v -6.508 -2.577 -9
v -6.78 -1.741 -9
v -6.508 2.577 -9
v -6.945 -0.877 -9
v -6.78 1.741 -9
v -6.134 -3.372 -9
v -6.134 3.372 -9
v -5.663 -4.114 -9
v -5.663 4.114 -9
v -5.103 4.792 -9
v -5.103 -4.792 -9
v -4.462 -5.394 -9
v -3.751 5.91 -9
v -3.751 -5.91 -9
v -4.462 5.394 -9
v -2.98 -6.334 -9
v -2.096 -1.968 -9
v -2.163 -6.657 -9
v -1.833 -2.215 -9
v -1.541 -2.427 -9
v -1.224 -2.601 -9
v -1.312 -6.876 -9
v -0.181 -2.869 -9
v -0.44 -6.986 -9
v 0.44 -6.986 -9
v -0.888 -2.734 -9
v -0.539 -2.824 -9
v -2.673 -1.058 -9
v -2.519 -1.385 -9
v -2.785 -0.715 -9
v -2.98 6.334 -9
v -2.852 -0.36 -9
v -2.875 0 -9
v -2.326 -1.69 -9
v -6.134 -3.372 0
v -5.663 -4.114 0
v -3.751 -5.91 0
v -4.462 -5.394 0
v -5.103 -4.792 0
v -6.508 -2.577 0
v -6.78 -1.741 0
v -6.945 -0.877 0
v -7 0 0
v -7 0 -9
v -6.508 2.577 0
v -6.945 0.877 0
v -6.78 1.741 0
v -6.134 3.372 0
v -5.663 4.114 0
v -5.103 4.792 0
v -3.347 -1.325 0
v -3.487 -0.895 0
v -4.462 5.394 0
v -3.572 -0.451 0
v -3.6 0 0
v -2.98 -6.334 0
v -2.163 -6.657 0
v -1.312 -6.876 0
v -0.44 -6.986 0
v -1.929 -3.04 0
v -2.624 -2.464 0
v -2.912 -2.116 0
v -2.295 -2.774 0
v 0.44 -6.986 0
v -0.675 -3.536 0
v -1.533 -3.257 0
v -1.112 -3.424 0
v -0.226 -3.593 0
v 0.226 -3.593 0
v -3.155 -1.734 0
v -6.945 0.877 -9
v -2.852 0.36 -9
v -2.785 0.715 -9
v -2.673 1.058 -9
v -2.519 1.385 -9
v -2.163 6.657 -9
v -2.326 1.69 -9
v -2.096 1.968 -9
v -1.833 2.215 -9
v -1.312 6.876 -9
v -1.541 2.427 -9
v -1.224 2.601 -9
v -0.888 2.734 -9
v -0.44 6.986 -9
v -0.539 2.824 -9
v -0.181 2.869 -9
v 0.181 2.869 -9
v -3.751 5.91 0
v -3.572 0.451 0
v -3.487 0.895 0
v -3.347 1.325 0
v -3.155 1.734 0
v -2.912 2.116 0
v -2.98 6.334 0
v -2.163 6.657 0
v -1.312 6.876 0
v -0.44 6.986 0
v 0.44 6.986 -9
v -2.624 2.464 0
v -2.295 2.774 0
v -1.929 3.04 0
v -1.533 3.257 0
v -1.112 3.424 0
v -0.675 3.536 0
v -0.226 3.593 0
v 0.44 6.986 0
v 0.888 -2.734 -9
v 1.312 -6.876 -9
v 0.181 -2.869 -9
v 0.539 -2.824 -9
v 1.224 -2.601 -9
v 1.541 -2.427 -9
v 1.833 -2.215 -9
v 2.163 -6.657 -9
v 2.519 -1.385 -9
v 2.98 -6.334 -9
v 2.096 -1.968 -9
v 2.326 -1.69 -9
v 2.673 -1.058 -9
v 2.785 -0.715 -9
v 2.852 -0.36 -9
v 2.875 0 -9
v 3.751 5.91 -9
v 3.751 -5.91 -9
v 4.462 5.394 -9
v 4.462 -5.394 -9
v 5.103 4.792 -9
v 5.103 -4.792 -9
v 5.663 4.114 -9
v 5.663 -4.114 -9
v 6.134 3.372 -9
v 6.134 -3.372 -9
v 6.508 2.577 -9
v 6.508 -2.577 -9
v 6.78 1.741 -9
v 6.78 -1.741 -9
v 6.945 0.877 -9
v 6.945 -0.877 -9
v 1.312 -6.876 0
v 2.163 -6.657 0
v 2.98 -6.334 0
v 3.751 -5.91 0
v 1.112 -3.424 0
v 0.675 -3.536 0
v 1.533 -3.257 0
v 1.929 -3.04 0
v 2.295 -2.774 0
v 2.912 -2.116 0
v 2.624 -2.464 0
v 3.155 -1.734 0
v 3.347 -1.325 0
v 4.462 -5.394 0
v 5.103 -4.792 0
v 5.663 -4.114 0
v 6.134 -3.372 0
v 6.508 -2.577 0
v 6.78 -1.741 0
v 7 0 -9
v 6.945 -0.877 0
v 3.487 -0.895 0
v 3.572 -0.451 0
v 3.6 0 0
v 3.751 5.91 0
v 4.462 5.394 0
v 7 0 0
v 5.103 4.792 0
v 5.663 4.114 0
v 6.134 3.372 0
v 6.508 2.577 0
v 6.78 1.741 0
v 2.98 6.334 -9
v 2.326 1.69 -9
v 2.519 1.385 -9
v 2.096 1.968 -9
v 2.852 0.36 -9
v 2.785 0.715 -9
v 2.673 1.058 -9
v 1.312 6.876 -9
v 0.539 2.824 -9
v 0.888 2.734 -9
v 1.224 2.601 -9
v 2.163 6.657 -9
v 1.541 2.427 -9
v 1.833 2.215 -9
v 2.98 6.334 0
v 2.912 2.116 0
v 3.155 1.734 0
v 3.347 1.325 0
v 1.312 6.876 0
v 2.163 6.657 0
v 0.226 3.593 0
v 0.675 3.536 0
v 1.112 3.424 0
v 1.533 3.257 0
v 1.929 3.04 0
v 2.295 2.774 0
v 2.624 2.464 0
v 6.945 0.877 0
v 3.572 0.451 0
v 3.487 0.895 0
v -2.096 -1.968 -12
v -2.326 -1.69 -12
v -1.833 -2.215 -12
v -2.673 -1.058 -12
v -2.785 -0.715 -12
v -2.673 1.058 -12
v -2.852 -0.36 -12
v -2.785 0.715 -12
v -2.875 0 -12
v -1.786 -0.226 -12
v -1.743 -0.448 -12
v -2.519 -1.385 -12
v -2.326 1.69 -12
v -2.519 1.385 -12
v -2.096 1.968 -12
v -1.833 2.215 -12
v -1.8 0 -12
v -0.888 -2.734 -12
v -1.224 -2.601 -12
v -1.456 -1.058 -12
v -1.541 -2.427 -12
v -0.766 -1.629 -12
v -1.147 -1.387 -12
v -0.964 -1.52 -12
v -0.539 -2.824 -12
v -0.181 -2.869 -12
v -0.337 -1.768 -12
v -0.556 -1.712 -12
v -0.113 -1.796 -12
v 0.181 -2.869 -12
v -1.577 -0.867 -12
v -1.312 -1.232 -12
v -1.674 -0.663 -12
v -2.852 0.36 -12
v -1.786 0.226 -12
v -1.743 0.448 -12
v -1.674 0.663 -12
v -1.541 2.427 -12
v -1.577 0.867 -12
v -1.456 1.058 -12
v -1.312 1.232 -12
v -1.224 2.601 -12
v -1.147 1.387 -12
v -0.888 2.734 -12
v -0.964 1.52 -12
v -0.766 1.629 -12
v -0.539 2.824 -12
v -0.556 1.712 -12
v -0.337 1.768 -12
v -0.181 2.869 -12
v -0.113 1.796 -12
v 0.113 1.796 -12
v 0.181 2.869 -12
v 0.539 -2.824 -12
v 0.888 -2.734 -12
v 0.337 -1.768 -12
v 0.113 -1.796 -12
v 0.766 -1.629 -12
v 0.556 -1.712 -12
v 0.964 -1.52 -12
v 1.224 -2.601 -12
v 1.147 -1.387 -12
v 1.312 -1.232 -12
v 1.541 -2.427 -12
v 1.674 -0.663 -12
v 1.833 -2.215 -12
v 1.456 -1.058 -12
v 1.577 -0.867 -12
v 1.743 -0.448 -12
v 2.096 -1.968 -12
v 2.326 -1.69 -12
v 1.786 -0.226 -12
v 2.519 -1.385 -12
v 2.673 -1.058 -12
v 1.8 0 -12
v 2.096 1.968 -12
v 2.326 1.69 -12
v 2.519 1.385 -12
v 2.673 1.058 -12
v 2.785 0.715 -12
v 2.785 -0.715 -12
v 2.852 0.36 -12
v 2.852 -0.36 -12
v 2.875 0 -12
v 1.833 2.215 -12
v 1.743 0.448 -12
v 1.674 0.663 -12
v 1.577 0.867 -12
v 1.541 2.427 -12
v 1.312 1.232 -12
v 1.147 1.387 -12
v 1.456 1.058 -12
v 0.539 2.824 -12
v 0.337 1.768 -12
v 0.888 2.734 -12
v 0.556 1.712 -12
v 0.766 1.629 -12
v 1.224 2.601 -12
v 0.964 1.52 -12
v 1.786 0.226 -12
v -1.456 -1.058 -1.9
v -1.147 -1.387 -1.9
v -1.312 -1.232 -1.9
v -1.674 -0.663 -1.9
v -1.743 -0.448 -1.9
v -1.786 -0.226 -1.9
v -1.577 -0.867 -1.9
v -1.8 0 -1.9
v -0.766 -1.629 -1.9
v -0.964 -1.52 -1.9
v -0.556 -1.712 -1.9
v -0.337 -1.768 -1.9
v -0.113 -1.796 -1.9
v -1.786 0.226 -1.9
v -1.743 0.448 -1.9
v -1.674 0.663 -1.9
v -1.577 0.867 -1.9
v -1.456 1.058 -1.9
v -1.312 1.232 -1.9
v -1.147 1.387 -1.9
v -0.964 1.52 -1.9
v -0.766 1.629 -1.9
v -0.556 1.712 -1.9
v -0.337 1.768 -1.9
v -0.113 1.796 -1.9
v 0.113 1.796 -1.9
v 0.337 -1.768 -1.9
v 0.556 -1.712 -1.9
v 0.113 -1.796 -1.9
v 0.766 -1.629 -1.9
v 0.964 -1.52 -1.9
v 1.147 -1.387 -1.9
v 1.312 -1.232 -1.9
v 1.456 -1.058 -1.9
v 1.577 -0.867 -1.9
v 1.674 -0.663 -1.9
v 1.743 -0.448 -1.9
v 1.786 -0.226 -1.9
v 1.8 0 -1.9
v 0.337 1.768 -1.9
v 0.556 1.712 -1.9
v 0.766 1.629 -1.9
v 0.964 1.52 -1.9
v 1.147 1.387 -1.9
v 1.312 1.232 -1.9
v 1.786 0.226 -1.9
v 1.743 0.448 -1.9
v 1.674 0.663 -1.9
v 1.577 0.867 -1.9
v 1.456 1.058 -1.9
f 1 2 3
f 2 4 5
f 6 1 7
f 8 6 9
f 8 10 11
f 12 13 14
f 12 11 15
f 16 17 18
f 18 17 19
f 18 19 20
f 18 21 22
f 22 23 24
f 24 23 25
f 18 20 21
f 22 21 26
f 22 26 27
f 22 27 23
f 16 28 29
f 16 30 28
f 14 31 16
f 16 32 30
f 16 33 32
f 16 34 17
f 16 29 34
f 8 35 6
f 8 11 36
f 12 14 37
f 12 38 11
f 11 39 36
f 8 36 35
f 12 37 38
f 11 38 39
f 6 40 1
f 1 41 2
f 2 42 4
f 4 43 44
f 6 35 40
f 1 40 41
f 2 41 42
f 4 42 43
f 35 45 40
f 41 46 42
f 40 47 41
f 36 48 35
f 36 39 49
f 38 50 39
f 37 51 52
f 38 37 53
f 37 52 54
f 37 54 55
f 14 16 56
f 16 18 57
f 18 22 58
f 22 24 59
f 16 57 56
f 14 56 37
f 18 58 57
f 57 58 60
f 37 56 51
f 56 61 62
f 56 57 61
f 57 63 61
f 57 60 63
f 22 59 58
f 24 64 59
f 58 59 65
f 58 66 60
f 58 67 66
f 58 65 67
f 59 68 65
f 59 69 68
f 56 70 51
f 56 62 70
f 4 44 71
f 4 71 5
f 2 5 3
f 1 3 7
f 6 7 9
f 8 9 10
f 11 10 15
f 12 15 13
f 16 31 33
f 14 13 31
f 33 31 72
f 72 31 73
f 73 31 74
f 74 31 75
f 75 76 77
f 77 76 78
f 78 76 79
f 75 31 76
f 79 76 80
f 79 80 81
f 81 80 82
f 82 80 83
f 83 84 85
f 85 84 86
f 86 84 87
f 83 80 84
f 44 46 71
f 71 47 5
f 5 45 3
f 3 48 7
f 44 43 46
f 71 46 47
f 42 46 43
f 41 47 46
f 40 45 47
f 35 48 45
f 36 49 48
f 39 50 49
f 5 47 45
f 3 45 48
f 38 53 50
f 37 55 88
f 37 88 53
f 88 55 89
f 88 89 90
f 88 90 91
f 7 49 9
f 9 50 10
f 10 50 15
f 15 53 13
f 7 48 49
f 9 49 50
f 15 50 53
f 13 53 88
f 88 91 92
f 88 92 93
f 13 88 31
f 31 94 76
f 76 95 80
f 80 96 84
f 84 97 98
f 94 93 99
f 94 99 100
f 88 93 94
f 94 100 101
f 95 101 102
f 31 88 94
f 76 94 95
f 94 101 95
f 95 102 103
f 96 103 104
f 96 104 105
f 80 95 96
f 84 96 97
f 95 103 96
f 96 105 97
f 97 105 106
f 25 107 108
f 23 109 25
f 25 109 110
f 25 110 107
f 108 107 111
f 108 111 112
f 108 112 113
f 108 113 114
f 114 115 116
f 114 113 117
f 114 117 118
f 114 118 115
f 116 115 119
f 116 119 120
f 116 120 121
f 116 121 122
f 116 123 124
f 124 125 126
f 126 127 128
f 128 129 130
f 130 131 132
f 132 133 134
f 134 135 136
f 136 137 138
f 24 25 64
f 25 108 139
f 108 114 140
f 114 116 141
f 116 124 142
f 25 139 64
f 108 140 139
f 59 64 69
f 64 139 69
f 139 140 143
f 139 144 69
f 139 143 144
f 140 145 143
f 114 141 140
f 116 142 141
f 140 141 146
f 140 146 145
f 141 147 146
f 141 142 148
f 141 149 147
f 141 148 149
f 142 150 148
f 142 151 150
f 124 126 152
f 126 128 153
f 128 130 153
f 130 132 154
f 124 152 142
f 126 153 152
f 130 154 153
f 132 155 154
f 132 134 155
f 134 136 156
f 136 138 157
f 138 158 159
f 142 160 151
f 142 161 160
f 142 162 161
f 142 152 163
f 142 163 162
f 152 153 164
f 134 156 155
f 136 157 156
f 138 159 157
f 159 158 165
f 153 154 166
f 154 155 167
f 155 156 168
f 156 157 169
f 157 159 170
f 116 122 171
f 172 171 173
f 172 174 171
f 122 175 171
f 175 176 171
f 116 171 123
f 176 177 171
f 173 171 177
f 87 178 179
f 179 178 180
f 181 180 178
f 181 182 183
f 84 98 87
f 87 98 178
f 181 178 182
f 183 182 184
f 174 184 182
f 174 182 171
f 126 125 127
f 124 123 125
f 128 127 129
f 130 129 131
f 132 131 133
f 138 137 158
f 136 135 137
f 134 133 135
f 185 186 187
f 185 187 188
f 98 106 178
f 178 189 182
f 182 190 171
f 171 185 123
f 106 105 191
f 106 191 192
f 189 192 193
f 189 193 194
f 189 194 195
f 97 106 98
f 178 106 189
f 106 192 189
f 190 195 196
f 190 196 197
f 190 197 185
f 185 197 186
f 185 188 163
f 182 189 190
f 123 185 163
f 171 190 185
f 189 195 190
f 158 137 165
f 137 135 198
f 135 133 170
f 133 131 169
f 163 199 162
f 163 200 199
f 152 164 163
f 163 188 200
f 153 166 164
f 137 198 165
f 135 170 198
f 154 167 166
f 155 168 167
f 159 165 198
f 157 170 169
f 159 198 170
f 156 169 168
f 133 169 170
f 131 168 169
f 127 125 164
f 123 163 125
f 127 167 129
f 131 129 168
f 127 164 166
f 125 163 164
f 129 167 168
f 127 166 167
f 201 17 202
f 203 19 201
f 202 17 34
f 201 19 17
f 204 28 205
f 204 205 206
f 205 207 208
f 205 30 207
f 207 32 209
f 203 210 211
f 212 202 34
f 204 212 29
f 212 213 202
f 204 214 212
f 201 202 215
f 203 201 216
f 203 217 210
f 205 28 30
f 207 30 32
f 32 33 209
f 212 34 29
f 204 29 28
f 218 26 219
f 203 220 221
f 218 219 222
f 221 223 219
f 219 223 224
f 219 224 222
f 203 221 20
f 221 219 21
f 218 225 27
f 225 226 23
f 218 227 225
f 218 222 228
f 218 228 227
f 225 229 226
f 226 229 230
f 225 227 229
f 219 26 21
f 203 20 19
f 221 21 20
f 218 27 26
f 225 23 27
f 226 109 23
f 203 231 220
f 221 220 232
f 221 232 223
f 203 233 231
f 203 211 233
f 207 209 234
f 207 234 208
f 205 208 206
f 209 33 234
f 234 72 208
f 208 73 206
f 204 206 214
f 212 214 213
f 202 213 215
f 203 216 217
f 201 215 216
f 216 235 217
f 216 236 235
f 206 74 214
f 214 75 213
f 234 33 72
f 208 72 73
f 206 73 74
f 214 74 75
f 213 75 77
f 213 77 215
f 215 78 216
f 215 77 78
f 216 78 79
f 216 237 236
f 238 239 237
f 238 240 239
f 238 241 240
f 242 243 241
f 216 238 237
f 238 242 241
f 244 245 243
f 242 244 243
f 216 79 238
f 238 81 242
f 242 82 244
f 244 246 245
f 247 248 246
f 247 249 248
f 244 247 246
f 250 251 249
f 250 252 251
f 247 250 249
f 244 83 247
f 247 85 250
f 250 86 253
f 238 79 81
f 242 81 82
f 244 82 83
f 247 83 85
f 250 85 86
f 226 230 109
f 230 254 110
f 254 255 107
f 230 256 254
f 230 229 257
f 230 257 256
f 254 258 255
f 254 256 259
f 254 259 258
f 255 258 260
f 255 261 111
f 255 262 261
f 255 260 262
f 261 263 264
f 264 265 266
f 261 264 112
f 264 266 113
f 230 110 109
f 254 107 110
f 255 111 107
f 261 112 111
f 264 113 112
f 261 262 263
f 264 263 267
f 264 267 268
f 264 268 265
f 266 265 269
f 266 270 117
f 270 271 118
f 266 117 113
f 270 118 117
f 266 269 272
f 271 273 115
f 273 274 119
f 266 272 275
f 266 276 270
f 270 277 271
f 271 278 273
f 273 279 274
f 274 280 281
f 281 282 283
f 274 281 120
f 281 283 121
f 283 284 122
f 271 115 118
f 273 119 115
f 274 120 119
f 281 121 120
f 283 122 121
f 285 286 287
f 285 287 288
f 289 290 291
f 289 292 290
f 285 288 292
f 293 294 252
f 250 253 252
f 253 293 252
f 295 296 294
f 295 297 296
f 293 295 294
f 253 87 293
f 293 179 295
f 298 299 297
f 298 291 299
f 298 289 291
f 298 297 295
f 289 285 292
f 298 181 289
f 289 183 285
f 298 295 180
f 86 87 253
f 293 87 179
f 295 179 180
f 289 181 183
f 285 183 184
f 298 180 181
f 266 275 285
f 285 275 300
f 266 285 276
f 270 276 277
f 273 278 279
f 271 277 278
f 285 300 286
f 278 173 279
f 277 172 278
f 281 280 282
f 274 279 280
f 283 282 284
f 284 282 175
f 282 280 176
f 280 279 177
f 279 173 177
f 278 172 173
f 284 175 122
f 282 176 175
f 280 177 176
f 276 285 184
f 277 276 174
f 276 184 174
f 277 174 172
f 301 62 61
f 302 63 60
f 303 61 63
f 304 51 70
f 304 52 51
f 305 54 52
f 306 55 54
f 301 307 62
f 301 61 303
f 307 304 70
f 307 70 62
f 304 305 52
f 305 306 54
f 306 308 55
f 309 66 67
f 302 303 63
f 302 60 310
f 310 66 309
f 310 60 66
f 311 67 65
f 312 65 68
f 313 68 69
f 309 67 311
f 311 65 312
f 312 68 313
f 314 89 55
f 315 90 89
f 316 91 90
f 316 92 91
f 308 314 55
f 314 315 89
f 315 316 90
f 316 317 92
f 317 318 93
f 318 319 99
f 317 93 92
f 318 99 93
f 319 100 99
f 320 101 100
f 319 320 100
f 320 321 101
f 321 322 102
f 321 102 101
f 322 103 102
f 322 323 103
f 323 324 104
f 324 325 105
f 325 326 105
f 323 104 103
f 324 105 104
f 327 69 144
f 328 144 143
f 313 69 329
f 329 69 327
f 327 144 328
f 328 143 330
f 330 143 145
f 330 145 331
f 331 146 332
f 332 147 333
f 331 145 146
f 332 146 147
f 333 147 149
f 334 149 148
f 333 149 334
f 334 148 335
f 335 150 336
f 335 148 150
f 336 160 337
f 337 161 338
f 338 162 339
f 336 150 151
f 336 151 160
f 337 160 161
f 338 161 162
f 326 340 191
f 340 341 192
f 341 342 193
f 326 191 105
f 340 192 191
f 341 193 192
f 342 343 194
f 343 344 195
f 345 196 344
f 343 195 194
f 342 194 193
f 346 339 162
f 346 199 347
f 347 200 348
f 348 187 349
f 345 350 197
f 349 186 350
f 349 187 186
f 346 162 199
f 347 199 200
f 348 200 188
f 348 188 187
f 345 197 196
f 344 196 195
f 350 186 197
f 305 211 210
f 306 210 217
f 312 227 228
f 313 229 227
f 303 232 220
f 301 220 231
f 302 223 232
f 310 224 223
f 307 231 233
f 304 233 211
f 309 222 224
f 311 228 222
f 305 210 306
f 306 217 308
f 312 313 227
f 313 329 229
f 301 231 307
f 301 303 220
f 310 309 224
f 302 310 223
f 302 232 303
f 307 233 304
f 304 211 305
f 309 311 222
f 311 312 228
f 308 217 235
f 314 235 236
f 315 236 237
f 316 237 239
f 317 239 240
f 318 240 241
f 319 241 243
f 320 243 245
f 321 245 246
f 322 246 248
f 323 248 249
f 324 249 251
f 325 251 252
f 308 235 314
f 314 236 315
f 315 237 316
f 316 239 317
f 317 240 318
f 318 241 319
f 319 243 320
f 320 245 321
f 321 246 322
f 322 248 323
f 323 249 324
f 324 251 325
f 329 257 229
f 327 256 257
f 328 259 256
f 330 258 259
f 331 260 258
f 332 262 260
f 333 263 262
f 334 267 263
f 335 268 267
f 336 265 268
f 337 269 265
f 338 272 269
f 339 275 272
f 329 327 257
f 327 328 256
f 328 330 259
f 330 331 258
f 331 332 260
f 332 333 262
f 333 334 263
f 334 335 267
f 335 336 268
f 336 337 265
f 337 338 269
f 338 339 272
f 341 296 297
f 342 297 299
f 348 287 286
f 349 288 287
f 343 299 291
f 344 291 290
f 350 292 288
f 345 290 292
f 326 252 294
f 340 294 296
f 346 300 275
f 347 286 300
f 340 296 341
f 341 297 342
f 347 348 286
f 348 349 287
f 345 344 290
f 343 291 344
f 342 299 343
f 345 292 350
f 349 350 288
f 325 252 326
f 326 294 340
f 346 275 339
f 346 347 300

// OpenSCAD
$fn = 50;

difference() {
	union() {
		translate(v = [0, 0, -9.0]) {
			cylinder(h = 9, r = 7.0);
		}
		#translate(v = [0, 0, -12.0]) {
			cylinder(h = 12, r = 2.875);
		}
	}
	union() {
		translate(v = [0, 0, 0]) {
			rotate(a = [0, 0, 0]) {
				difference() {
					union() {
						translate(v = [0, 0, -12.0]) {
							cylinder(h = 12, r = 1.5);
						}
						translate(v = [0, 0, -1.9]) {
							cylinder(h = 1.9, r1 = 1.8, r2 = 3.6);
						}
						translate(v = [0, 0, -12.0]) {
							cylinder(h = 12, r = 1.8);
						}
						translate(v = [0, 0, -12.0]) {
							cylinder(h = 12, r = 1.5);
						}
					}
					union();
				}
			}
		}
	}
}
